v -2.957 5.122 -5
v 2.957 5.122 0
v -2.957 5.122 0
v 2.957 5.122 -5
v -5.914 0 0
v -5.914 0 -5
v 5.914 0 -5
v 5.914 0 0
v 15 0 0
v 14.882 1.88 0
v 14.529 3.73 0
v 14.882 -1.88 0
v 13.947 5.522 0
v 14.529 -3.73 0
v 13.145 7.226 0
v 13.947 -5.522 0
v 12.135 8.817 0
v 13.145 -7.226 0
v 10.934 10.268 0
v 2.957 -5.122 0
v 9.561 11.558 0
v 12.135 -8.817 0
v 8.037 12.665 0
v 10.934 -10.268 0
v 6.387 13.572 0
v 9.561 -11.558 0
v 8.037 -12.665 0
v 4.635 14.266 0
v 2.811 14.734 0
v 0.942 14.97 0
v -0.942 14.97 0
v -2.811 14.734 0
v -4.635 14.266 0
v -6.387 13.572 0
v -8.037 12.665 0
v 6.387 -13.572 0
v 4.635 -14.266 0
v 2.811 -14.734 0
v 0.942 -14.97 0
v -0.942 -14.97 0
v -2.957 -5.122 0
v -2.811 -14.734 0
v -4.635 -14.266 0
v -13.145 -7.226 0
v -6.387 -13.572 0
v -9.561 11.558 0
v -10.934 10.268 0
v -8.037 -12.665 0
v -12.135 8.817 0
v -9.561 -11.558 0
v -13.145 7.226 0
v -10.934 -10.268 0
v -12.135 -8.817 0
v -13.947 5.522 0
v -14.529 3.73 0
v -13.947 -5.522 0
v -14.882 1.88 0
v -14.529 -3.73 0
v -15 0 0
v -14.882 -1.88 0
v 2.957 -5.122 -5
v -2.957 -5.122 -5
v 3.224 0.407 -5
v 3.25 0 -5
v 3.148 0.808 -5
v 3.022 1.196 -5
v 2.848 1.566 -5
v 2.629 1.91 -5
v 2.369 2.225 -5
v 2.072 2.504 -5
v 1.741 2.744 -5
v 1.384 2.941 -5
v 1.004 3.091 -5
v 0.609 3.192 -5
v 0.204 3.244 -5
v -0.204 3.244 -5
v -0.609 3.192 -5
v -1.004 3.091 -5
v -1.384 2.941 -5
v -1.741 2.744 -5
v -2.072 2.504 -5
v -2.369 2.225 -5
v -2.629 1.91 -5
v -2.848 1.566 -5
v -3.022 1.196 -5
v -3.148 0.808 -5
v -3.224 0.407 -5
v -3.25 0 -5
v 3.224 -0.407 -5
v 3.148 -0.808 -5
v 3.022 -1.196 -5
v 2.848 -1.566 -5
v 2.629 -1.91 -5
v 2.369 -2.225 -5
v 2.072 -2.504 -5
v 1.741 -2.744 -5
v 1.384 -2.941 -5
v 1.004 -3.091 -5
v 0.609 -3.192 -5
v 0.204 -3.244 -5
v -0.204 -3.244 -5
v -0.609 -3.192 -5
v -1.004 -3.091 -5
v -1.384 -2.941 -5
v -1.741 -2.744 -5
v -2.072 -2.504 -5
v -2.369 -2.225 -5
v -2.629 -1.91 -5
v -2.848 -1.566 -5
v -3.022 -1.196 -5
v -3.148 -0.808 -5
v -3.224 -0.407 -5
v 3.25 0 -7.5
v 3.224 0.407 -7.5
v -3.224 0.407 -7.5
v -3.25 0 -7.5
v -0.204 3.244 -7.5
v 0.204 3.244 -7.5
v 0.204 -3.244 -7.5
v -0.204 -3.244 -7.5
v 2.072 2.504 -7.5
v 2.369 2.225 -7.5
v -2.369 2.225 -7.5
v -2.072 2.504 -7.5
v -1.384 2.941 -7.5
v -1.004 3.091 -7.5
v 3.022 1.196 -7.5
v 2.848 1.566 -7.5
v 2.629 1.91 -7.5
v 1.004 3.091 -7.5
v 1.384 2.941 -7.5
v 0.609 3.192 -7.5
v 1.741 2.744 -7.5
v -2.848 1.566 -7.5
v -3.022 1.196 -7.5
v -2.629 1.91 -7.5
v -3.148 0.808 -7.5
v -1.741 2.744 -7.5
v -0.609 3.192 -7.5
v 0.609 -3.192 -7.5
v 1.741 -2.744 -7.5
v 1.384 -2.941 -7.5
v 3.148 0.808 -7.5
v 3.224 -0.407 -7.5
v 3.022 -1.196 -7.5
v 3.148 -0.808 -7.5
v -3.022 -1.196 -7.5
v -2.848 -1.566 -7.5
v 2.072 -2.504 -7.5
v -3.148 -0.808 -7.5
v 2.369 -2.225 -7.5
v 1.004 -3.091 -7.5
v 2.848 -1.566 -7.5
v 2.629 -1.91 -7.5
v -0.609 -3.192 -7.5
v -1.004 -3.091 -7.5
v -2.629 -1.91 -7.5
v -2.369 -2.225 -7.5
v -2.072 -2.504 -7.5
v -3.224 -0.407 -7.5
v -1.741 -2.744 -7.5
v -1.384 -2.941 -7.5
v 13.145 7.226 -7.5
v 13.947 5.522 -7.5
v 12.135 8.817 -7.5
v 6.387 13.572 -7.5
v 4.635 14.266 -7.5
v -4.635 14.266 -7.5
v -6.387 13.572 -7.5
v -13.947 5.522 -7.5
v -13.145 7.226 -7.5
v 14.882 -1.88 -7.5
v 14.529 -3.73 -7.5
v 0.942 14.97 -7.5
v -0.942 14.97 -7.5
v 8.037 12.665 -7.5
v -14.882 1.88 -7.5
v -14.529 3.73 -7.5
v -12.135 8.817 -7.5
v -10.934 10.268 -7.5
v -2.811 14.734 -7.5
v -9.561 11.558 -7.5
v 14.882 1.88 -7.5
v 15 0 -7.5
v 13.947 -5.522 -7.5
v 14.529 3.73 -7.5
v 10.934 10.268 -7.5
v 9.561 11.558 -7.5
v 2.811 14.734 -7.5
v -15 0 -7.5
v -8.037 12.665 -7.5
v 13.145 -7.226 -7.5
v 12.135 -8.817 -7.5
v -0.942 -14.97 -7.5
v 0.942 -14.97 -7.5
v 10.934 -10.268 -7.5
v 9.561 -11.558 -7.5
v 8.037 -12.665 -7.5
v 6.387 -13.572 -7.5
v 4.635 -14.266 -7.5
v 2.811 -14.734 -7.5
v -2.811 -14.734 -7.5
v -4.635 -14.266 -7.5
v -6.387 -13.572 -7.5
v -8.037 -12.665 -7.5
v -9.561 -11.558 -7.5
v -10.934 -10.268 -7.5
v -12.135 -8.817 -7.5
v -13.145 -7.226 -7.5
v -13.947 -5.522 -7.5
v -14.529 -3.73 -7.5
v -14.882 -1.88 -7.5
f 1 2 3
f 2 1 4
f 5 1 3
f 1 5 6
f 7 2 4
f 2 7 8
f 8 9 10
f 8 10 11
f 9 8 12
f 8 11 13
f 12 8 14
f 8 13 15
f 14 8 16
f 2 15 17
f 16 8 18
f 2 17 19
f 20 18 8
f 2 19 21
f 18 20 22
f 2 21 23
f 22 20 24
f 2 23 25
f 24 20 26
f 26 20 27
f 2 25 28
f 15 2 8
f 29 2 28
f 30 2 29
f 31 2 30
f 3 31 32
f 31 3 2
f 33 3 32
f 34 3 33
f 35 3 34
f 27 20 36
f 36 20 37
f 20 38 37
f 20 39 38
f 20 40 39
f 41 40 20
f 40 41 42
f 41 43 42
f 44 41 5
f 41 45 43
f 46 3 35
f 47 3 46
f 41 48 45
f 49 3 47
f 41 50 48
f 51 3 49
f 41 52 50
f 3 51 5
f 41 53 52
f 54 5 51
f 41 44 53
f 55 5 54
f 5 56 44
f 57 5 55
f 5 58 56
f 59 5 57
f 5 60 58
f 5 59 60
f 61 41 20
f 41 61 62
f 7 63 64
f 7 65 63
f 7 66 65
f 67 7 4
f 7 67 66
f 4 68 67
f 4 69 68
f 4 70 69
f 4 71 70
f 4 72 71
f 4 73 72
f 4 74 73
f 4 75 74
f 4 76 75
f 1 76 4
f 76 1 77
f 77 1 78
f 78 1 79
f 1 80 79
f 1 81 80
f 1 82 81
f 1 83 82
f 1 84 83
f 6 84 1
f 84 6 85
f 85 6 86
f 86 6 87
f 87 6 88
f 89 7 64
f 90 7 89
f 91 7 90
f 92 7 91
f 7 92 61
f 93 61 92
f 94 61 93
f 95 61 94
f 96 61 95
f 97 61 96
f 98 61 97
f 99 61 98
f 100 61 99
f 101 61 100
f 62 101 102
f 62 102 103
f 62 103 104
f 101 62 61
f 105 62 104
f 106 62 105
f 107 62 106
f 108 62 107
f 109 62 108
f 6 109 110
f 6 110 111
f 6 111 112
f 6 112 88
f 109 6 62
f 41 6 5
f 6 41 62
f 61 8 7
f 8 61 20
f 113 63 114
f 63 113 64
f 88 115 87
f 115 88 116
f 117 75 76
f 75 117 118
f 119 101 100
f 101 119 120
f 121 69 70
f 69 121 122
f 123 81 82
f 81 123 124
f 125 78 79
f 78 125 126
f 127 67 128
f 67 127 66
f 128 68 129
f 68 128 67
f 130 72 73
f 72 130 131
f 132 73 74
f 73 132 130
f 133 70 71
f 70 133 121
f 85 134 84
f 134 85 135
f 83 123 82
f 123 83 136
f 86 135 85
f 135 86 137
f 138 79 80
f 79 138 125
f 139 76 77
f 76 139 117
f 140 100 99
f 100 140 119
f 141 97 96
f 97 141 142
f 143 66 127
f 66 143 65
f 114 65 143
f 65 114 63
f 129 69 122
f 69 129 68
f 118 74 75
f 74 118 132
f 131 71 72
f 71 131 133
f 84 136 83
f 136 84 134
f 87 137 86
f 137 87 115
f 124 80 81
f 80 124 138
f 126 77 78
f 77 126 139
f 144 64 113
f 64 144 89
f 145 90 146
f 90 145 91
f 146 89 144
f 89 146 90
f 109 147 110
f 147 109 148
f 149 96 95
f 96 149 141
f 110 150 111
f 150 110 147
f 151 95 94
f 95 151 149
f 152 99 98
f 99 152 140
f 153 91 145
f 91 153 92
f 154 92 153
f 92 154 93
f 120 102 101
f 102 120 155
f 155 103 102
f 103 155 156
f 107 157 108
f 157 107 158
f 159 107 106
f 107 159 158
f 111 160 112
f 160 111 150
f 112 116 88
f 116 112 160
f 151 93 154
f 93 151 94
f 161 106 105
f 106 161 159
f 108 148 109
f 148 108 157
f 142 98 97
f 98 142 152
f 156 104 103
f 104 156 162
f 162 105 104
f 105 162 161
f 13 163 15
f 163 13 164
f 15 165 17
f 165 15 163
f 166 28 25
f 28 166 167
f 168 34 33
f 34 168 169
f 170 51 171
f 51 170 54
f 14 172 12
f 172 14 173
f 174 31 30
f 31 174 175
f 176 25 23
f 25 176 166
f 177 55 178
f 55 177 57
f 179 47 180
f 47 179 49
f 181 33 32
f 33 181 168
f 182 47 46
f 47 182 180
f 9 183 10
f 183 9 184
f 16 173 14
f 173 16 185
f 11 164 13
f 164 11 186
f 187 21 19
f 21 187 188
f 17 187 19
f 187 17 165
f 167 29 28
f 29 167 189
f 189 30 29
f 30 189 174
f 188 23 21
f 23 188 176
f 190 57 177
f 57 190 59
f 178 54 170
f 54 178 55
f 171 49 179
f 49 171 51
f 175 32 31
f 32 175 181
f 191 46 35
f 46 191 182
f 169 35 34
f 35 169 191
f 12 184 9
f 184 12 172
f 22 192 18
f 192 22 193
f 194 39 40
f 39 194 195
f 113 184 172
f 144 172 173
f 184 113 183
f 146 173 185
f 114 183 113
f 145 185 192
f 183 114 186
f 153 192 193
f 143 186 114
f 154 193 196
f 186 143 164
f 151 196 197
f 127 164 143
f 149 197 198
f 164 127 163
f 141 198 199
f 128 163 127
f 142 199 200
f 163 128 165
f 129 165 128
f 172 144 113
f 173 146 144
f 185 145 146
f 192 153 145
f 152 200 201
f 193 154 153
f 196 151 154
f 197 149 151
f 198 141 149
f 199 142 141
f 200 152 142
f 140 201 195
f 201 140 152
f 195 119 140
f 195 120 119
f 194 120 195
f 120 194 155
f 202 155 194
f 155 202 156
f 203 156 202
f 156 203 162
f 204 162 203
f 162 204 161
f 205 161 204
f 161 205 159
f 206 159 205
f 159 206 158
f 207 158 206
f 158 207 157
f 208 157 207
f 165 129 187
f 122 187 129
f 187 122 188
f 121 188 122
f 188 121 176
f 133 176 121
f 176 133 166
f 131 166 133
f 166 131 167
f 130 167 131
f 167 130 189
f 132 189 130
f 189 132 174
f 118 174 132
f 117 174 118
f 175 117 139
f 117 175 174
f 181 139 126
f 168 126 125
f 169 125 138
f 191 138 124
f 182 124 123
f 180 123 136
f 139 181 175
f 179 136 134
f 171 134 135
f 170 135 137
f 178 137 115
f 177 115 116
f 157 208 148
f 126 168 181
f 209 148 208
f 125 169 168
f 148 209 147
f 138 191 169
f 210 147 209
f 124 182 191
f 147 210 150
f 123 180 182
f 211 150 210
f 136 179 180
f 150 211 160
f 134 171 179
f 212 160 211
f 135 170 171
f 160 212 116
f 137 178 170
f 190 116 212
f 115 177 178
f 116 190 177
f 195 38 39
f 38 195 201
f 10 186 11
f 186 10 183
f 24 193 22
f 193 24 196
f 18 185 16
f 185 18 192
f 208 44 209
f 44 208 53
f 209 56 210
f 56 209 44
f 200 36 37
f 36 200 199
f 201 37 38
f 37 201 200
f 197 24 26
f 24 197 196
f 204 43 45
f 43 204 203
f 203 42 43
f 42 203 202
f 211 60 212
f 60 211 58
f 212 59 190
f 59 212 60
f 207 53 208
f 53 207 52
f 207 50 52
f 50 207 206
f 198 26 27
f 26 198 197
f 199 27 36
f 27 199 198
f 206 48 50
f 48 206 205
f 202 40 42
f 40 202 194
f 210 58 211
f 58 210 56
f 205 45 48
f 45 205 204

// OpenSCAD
$fn = 50;


difference() {
	union() {
		translate(v = [0, 0, -7.5000000000]) {
			cylinder(h = 7.5000000000, r = 15.0000000000);
		}
	}
	union() {
		translate(v = [0, 0, 0]) {
			rotate(a = [0, 0, 0]) {
				difference() {
					union() {
						translate(v = [0, 0, -5]) {
							linear_extrude(height = 5) {
								polygon(points = [[5.9142500000, 0.0000000000], [2.9571250000, 5.1218907443], [-2.9571250000, 5.1218907443], [-5.9142500000, 0.0000000000], [-2.9571250000, -5.1218907443], [2.9571250000, -5.1218907443]]);
							}
						}
					}
					union();
				}
			}
		}
		#translate(v = [0, 0, -100.0000000000]) {
			cylinder(h = 200, r = 3.2500000000);
		}
	}
}
